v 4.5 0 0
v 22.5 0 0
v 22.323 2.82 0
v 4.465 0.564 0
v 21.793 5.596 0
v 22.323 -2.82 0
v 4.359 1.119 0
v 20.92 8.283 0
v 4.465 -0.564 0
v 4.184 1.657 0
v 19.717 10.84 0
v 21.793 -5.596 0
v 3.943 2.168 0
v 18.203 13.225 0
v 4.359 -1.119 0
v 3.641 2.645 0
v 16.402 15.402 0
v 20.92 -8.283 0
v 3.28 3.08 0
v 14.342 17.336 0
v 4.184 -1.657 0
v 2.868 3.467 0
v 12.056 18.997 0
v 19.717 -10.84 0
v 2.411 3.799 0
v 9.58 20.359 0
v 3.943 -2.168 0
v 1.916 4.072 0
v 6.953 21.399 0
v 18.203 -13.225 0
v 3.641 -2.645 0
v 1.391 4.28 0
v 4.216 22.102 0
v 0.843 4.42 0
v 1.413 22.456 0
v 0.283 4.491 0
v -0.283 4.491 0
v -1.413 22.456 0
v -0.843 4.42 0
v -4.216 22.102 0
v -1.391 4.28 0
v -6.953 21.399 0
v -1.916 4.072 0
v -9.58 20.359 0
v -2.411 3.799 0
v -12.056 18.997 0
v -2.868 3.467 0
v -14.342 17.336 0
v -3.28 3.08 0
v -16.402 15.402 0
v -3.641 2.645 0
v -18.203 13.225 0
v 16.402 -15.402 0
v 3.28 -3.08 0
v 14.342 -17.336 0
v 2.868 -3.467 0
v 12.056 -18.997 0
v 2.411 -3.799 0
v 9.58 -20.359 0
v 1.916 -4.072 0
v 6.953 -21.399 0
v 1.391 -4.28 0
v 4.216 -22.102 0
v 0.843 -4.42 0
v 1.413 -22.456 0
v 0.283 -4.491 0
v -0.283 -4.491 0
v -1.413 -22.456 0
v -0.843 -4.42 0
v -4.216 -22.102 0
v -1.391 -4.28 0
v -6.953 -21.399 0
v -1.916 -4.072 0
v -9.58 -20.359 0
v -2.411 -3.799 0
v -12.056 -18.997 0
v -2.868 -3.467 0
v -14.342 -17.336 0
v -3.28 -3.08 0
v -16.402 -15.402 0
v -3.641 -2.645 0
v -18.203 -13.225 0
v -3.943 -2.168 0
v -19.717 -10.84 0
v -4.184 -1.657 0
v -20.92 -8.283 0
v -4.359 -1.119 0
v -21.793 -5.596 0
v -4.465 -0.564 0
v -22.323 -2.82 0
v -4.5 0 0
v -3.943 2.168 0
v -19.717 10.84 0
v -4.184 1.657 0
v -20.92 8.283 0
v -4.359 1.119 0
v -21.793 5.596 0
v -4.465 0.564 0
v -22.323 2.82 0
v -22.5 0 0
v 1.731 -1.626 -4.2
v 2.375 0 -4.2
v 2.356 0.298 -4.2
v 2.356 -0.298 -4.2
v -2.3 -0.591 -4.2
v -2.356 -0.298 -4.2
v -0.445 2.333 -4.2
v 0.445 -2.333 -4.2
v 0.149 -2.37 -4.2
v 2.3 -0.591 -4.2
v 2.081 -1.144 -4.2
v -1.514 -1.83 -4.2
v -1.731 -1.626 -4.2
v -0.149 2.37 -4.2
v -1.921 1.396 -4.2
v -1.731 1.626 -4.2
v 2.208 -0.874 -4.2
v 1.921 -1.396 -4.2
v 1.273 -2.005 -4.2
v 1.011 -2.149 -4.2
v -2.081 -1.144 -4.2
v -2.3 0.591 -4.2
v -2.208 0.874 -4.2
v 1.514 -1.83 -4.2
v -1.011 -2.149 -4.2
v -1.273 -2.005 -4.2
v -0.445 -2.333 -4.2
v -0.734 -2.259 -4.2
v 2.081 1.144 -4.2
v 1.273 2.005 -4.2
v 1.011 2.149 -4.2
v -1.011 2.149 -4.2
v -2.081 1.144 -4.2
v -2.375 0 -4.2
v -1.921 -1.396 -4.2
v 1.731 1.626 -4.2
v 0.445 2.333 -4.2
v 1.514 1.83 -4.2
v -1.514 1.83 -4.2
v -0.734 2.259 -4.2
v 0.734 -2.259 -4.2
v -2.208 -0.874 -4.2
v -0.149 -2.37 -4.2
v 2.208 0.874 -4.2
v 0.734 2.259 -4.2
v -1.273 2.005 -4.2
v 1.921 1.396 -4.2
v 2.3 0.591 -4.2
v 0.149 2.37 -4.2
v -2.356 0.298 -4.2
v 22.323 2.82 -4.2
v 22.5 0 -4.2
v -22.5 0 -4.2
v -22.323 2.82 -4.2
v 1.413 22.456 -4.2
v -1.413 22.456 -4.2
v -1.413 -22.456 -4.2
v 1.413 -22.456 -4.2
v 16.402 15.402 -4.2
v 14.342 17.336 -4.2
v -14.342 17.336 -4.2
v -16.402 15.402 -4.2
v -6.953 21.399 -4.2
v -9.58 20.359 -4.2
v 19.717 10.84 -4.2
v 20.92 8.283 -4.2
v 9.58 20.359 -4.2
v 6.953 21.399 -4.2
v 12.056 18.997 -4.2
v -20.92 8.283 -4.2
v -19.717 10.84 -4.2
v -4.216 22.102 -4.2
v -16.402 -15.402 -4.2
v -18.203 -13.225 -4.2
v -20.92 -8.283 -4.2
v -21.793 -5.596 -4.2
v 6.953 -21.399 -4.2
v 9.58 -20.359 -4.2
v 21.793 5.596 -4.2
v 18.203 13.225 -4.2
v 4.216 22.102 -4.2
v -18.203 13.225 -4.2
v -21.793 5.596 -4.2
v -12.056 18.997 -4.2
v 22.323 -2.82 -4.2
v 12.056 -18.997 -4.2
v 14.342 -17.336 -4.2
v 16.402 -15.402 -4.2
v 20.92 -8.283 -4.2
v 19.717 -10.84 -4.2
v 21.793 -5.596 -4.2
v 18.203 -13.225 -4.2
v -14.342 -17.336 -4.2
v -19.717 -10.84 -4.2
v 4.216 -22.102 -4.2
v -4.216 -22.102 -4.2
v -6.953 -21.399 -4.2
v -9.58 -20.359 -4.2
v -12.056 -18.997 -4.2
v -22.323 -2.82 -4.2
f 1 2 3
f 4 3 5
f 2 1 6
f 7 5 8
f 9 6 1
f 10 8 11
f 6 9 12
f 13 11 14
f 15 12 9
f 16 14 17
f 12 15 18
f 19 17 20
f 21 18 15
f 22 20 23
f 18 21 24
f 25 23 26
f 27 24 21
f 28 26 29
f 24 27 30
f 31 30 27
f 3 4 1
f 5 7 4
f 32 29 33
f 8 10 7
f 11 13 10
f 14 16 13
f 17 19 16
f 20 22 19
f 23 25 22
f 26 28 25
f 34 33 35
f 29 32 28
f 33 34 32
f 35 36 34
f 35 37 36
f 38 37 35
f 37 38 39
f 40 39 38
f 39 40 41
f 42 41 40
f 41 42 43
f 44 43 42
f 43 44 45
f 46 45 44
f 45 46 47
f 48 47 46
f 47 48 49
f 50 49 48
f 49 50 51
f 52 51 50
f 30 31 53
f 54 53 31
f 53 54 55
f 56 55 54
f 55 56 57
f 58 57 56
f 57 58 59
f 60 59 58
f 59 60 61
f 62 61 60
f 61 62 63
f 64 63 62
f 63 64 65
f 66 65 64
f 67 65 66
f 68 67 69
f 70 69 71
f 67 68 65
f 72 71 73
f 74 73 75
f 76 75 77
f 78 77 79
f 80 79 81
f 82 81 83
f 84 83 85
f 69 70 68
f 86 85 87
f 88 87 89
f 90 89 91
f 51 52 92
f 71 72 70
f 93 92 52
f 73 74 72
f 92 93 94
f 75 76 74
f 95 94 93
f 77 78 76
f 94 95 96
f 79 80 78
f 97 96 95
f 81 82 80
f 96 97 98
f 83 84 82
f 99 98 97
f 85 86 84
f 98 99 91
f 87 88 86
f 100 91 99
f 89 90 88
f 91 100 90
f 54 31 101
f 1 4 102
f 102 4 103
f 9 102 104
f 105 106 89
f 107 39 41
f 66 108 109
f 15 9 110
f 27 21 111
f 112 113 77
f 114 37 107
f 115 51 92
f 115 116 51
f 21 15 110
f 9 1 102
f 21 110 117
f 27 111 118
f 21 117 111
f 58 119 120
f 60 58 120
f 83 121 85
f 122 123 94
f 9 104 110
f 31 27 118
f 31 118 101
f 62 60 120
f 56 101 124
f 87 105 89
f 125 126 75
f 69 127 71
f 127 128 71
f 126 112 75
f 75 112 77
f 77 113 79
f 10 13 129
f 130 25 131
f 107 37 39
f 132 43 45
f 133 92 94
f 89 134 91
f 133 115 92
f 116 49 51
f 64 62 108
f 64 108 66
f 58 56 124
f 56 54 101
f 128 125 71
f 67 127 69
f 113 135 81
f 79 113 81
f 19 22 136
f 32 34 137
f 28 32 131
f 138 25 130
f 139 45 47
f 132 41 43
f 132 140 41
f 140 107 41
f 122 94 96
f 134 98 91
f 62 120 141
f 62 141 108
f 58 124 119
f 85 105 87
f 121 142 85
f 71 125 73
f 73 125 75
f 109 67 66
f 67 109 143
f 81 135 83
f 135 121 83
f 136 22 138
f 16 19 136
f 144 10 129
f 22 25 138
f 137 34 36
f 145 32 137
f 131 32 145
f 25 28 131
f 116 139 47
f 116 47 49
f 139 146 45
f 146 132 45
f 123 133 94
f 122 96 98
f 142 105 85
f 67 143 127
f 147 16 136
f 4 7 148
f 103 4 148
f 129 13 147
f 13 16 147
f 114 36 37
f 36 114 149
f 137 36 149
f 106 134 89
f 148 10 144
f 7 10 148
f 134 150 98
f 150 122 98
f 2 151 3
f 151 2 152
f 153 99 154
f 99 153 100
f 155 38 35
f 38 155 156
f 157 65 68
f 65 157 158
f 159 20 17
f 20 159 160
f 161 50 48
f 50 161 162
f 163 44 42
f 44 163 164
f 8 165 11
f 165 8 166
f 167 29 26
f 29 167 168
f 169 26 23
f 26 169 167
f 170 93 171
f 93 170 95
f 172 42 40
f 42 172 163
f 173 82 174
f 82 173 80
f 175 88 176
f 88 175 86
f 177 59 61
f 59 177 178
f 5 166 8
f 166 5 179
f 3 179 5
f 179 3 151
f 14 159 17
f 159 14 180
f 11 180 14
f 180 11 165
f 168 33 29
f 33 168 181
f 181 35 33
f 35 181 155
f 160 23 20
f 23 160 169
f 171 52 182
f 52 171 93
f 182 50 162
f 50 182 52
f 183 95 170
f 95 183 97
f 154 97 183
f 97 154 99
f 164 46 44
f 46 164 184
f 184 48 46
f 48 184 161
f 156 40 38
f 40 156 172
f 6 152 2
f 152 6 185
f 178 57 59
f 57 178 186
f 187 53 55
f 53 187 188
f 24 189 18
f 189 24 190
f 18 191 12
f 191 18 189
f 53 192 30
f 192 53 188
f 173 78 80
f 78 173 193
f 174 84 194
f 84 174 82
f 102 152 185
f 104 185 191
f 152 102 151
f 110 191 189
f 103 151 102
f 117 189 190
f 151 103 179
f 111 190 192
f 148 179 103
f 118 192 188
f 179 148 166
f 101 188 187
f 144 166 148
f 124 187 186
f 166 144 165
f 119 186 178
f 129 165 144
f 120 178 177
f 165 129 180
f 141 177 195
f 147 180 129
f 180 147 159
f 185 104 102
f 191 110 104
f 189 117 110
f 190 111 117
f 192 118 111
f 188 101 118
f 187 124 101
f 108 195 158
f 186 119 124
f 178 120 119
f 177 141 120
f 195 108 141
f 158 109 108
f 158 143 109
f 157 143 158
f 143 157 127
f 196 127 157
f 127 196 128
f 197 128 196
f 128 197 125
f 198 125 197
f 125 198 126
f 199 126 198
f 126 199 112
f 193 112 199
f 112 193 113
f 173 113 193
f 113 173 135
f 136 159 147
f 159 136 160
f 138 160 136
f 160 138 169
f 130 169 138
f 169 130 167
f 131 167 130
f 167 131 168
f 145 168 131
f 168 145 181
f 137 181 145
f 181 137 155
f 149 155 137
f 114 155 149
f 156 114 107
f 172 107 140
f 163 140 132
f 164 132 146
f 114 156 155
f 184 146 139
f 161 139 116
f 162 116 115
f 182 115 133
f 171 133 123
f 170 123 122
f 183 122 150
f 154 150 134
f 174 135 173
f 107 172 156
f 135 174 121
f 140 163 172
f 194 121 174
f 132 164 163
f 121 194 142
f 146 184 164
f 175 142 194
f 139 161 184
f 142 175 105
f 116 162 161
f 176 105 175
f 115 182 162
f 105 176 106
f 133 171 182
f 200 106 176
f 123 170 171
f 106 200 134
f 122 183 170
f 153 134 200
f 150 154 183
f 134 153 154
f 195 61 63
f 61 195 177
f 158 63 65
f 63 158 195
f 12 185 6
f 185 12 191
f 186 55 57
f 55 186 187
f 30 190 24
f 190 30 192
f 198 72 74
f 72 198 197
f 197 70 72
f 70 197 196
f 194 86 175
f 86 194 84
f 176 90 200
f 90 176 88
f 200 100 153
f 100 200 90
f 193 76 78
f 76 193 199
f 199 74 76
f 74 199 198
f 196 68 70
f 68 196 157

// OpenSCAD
$fn = 50;


difference() {
	union() {
		translate(v = [0, 0, -4.2000000000]) {
			cylinder(h = 4.2000000000, r = 22.5000000000);
		}
	}
	union() {
		translate(v = [0, 0, 0]) {
			rotate(a = [0, 0, 0]) {
				difference() {
					union() {
						translate(v = [0, 0, -7.2000000000]) {
							cylinder(h = 7.2000000000, r = 2.2500000000);
						}
						translate(v = [0, 0, -4.2000000000]) {
							cylinder(h = 4.2000000000, r1 = 2.3750000000, r2 = 4.5000000000);
						}
						translate(v = [0, 0, -7.2000000000]) {
							cylinder(h = 7.2000000000, r = 2.3750000000);
						}
						translate(v = [0, 0, -7.2000000000]) {
							cylinder(h = 7.2000000000, r = 2.2500000000);
						}
					}
					union();
				}
			}
		}
	}
}
